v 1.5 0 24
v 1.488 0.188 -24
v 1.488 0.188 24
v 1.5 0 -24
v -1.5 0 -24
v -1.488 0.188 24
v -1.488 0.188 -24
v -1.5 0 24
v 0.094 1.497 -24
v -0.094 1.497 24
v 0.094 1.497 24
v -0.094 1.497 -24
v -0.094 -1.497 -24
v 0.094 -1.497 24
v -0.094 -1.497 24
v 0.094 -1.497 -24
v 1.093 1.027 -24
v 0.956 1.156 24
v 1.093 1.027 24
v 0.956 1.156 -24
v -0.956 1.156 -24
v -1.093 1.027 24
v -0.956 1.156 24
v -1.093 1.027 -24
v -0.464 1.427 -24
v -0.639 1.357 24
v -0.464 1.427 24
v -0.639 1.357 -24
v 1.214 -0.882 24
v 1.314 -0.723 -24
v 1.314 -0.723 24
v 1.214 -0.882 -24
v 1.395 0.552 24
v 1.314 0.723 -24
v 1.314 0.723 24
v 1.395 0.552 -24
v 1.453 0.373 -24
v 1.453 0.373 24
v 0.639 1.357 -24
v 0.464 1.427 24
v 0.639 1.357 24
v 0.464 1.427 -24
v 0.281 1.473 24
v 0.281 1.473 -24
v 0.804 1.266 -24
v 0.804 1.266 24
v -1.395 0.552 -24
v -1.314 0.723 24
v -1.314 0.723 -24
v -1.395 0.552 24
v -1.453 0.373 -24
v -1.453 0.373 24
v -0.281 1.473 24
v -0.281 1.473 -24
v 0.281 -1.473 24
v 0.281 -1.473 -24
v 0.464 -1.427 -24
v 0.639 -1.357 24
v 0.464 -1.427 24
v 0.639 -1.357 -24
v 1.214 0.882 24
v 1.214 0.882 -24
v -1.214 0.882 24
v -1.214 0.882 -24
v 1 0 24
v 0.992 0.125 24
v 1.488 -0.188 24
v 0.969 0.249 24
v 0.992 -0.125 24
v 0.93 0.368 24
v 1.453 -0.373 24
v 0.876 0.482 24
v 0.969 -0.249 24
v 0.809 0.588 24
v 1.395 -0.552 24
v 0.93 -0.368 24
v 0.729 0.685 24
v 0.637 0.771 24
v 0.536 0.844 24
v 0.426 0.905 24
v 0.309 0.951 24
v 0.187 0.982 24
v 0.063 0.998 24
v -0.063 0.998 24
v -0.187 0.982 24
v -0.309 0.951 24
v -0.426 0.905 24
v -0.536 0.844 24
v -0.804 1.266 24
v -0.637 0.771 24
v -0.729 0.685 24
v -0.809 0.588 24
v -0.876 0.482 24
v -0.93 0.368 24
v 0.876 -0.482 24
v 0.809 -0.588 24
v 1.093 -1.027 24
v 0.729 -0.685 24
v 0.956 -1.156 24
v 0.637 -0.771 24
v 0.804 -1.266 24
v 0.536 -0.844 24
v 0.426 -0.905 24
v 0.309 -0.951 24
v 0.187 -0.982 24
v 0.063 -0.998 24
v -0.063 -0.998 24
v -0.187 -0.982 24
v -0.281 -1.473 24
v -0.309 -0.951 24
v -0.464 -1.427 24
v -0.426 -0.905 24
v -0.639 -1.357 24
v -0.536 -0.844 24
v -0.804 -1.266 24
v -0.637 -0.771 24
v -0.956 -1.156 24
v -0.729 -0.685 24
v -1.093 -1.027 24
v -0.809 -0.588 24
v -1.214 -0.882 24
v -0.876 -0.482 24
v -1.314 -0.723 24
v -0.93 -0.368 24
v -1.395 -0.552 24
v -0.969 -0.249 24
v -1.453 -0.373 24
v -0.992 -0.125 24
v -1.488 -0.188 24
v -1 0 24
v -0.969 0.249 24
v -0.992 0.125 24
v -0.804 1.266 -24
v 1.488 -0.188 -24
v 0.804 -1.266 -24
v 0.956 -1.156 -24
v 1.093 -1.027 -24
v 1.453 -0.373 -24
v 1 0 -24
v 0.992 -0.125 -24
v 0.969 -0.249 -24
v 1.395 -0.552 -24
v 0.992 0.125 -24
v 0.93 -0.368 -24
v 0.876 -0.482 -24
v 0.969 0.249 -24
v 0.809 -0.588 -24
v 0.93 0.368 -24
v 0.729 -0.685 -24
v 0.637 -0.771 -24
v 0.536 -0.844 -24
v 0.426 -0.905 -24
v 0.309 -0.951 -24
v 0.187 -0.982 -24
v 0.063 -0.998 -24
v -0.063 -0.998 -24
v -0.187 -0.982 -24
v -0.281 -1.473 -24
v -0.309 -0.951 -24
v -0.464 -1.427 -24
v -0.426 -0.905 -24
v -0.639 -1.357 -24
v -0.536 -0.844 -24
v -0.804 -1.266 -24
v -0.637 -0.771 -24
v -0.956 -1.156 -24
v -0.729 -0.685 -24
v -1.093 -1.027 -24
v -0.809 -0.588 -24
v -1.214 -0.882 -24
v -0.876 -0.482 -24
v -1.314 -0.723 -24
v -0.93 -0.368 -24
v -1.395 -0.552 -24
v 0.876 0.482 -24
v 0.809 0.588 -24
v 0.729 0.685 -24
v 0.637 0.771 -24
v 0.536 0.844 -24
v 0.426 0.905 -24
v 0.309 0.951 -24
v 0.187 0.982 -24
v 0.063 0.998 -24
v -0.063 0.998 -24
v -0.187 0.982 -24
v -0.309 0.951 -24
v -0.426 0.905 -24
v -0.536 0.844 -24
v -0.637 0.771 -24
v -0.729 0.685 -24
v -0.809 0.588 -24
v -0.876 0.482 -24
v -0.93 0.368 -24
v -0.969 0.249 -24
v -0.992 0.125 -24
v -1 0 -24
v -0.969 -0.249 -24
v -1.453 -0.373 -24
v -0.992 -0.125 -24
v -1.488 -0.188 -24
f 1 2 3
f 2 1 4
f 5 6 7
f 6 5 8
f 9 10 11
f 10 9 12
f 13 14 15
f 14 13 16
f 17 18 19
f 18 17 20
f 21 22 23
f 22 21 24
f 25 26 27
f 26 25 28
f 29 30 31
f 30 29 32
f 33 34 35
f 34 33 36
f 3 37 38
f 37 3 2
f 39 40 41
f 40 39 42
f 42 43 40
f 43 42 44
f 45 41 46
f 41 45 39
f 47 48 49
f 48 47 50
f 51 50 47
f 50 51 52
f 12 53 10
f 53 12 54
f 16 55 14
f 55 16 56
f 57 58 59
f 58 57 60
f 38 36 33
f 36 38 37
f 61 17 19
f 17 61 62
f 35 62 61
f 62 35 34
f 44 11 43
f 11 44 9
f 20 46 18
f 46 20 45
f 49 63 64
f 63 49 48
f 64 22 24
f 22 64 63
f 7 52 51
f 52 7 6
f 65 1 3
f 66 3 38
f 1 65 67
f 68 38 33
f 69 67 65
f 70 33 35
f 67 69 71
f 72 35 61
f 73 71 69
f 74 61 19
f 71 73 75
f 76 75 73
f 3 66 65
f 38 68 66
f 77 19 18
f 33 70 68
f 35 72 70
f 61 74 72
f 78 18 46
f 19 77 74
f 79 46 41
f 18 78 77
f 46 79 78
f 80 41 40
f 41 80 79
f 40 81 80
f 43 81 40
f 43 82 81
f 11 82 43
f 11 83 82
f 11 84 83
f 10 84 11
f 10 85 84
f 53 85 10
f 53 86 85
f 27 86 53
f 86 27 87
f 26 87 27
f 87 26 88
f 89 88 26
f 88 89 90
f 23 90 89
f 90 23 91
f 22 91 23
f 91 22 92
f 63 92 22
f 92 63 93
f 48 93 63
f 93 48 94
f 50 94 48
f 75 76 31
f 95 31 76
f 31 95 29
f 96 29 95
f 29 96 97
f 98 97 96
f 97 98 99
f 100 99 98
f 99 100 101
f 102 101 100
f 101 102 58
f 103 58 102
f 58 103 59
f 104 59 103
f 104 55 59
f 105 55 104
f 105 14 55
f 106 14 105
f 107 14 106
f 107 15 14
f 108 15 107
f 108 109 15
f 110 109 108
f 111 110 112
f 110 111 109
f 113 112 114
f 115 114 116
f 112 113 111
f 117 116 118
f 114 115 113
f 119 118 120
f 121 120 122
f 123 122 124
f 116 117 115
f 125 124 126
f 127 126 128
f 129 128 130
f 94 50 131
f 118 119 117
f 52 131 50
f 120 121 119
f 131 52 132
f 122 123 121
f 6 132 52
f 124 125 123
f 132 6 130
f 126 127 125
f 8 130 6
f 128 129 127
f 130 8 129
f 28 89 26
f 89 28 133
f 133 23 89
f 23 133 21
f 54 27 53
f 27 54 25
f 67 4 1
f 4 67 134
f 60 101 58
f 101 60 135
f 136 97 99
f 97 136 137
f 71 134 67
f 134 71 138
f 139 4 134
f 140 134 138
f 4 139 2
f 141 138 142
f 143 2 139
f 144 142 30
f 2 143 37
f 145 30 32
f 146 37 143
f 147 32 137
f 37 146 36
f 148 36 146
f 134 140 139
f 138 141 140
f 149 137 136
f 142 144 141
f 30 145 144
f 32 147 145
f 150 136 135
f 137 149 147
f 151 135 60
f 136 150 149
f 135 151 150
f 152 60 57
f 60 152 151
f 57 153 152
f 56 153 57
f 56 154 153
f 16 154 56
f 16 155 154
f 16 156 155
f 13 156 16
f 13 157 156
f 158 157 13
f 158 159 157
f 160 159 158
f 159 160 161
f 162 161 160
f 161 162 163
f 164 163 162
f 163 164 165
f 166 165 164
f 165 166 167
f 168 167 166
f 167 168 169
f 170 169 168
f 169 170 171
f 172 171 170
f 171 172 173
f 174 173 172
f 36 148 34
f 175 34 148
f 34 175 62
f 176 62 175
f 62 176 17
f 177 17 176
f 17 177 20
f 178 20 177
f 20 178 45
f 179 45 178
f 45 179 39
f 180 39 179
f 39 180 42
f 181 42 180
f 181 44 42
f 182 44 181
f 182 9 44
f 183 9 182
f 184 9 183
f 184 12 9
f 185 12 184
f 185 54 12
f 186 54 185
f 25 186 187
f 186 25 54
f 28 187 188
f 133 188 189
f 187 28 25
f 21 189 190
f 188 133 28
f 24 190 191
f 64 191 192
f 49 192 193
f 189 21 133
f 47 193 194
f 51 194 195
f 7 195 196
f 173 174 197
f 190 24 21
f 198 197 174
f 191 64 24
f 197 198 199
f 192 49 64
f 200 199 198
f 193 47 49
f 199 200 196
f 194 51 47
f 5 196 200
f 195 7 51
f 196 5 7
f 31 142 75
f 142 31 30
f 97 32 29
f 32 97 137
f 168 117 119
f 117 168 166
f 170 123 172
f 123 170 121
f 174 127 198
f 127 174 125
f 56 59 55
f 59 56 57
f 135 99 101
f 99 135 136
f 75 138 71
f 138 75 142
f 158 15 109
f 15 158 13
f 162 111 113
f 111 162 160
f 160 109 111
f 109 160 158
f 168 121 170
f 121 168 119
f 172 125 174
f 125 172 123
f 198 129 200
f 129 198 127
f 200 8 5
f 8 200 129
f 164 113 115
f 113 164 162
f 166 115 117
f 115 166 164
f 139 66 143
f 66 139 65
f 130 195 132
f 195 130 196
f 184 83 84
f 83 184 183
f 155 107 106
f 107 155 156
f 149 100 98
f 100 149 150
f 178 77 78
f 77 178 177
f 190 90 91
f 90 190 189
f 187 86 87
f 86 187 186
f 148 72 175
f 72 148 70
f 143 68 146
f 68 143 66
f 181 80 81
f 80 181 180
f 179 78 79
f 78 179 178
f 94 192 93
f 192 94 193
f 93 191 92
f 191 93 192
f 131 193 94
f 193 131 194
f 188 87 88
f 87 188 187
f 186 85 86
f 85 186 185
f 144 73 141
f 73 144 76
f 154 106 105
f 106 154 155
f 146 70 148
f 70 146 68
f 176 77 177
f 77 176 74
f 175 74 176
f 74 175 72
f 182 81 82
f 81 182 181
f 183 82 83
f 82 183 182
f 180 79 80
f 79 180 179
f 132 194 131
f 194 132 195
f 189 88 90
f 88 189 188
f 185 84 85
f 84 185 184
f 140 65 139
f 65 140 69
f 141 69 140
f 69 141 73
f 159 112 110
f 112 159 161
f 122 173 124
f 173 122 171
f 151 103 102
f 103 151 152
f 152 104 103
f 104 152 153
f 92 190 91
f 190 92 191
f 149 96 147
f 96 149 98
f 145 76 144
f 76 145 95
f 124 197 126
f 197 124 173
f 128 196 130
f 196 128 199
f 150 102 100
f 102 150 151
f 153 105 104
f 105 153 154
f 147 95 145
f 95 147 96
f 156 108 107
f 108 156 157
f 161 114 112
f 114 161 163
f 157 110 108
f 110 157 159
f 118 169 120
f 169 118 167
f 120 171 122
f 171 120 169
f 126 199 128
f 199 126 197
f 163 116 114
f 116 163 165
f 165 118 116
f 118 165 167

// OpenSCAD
$fn = 50;


difference() {
	union() {
		translate(v = [0, 0, -24.0000000000]) {
			cylinder(h = 48, r = 1.5000000000);
		}
	}
	union() {
		translate(v = [0, 0, -100.0000000000]) {
			cylinder(h = 200, r = 1.0000000000);
		}
	}
}
